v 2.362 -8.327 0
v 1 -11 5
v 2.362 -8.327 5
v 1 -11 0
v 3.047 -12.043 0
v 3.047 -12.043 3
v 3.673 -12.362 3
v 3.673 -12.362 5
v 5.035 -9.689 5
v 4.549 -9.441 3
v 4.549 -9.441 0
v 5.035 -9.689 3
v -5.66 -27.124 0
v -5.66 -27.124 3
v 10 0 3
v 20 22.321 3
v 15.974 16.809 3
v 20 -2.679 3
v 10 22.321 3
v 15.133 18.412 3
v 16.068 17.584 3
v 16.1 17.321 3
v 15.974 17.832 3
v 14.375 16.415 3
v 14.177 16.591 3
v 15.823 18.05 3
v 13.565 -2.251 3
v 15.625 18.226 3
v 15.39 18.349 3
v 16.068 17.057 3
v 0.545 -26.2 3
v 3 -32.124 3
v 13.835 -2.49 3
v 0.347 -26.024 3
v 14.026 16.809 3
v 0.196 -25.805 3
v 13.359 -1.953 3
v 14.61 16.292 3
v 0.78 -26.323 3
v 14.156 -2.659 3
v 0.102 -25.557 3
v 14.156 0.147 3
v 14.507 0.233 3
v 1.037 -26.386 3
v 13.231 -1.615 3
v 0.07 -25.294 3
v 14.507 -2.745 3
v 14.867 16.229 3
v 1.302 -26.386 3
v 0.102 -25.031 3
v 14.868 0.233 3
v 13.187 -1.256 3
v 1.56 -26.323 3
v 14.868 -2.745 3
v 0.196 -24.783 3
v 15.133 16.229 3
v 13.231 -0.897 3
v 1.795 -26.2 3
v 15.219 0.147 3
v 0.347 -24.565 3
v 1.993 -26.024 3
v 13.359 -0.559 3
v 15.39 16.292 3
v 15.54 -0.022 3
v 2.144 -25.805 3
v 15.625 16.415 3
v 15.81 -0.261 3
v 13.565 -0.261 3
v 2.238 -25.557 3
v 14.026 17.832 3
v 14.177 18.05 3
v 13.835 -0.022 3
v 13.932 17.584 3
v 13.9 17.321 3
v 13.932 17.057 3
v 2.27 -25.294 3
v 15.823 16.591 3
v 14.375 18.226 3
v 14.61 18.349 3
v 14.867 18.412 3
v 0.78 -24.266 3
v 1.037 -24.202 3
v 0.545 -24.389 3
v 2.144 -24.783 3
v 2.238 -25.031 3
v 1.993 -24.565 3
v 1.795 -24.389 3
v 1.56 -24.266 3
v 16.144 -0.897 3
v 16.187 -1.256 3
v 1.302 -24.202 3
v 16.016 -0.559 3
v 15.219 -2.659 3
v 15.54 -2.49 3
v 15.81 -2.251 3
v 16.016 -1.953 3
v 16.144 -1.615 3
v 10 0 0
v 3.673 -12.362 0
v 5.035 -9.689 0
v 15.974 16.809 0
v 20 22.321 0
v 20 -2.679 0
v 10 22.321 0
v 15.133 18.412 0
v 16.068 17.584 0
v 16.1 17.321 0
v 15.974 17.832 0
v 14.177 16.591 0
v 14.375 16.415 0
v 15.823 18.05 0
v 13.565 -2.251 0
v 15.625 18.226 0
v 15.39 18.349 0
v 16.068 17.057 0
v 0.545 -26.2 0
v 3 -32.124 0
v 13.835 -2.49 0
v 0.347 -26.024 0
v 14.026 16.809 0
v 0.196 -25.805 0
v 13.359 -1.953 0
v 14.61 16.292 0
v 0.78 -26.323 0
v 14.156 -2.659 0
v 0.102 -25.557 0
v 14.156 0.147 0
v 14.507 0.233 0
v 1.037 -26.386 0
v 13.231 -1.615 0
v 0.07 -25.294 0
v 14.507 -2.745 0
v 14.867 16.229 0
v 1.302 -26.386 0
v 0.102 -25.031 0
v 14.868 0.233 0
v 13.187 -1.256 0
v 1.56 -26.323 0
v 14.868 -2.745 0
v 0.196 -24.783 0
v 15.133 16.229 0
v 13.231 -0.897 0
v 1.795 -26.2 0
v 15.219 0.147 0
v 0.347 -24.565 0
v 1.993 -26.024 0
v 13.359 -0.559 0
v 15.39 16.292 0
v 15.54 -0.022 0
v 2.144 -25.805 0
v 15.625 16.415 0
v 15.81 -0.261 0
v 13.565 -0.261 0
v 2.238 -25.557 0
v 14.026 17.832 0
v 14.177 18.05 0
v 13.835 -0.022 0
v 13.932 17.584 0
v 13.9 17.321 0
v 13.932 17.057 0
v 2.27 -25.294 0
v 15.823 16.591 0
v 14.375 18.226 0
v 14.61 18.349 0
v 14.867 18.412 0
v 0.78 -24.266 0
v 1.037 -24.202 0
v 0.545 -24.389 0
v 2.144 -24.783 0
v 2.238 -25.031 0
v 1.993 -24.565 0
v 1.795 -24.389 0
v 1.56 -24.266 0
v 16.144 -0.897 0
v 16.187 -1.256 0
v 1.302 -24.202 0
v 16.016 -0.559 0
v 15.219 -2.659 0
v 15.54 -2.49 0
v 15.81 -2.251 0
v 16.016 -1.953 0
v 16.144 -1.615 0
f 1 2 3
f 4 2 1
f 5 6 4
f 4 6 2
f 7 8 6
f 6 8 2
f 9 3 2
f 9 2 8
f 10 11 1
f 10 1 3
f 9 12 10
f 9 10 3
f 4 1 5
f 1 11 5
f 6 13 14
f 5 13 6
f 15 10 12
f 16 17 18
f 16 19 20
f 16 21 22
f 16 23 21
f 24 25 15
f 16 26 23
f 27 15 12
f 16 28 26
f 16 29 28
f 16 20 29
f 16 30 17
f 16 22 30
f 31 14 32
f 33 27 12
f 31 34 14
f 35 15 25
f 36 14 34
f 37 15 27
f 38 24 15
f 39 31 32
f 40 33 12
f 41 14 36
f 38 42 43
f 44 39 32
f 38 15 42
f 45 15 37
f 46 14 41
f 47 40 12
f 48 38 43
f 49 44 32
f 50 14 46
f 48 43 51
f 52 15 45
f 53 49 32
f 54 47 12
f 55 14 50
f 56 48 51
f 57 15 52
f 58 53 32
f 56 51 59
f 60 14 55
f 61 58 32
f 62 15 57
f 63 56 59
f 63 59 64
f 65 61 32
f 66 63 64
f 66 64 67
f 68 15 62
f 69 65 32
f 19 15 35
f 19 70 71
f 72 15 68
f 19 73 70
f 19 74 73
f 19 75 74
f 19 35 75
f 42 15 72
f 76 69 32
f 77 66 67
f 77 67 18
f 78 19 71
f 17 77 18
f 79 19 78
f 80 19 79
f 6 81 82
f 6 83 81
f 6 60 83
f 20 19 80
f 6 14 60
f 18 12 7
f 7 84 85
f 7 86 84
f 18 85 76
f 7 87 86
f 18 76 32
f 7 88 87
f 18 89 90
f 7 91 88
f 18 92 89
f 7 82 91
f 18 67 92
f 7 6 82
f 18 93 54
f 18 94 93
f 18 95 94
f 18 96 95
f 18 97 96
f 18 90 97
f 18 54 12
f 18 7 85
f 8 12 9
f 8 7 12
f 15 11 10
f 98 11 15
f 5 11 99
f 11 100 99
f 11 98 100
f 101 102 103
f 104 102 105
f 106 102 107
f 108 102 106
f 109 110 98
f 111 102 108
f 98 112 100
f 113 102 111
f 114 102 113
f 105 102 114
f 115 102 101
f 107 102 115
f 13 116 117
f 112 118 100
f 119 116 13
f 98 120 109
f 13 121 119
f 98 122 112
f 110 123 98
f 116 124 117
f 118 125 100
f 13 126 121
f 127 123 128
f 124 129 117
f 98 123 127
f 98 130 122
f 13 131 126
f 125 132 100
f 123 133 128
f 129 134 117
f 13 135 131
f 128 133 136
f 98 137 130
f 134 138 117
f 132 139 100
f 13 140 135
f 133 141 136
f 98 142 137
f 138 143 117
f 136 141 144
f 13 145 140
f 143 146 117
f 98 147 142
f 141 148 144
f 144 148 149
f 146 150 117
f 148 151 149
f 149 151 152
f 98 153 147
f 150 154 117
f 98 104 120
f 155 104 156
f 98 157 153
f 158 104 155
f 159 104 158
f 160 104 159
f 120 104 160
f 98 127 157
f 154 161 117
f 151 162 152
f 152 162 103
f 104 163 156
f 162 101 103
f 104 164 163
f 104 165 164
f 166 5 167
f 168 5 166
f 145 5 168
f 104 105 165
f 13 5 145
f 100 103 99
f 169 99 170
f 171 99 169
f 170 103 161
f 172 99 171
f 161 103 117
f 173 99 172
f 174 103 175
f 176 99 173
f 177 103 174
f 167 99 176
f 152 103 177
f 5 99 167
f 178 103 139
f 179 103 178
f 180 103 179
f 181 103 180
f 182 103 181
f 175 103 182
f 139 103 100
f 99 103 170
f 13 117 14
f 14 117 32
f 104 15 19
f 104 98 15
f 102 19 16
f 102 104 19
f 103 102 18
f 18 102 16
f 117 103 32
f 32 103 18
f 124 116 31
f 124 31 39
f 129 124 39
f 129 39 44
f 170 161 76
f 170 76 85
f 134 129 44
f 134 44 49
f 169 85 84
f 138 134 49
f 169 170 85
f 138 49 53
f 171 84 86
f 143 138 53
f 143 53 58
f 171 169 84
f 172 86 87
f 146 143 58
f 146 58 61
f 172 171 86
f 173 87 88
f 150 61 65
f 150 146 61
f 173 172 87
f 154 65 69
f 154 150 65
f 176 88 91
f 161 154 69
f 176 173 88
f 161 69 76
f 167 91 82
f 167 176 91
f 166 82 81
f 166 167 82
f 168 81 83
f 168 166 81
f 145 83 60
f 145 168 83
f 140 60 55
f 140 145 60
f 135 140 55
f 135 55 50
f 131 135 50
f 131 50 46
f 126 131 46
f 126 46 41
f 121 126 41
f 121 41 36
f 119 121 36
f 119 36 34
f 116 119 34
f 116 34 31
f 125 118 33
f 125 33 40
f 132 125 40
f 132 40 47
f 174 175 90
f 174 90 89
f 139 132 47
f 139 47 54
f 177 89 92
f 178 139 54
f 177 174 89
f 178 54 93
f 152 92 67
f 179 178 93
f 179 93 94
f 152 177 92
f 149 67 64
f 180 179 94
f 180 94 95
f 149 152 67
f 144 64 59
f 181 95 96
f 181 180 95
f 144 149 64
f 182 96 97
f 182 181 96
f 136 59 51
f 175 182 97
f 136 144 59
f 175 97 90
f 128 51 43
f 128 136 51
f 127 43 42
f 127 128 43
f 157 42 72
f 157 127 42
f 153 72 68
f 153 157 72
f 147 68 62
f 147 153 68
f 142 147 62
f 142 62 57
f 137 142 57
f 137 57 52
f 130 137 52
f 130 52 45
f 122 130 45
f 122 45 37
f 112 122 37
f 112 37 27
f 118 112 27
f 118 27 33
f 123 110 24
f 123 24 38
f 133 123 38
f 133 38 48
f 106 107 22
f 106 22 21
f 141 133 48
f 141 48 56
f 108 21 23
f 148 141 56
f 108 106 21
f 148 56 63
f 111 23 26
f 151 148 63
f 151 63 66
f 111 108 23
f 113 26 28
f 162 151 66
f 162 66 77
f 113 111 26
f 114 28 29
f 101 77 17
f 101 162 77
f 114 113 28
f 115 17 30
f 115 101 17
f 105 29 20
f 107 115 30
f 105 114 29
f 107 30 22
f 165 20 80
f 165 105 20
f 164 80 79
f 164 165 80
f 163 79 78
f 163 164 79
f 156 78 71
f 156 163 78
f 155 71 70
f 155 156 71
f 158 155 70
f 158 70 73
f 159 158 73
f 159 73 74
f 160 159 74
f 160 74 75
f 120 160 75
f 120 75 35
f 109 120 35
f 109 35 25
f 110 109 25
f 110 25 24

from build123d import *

# Parameters (mm, degrees)
SKETCH_R            = 1.1
SKETCH_R_2          = 1.5
PAD_DEPTH           = 3
BOX_W               = 3
BOX_H               = 3
BOX_DEPTH           = 5
BOX_PLACEMENT_ANGLE = 27


with BuildPart() as body:
    # Sketch → Pad (new body)
    with BuildSketch(Plane.XY):
        Polygon((-5.660254, -27.124356), (3, -32.124356), (20, -2.679492), (20, 22.320508), (10, 22.320508), (10, 0), align=None)
        with Locations((15, 17.320508)):
            Circle(SKETCH_R, mode=Mode.SUBTRACT)
        with Locations((1.169873, -25.294229)):
            Circle(SKETCH_R, mode=Mode.SUBTRACT)
        with Locations((14.687408, -1.255987)):
            Circle(SKETCH_R_2, mode=Mode.SUBTRACT)
    extrude(amount=PAD_DEPTH)


with BuildPart() as fusion:
    # Box → Box (new body)
    with BuildSketch(Plane.XY):
        with Locations((1.5, 1.5)):
            Rectangle(BOX_W, BOX_H)
    extrude(amount=BOX_DEPTH)


with BuildPart() as fusion_1:
    # Box placement: moved
    add(fusion.part.moved(Location((1, -11, 0))).rotate(Axis((1, -11, 0), (0, 0, -1)), BOX_PLACEMENT_ANGLE))

    # Fusion: union Body
    add(body.part)


solid = fusion_1.part
